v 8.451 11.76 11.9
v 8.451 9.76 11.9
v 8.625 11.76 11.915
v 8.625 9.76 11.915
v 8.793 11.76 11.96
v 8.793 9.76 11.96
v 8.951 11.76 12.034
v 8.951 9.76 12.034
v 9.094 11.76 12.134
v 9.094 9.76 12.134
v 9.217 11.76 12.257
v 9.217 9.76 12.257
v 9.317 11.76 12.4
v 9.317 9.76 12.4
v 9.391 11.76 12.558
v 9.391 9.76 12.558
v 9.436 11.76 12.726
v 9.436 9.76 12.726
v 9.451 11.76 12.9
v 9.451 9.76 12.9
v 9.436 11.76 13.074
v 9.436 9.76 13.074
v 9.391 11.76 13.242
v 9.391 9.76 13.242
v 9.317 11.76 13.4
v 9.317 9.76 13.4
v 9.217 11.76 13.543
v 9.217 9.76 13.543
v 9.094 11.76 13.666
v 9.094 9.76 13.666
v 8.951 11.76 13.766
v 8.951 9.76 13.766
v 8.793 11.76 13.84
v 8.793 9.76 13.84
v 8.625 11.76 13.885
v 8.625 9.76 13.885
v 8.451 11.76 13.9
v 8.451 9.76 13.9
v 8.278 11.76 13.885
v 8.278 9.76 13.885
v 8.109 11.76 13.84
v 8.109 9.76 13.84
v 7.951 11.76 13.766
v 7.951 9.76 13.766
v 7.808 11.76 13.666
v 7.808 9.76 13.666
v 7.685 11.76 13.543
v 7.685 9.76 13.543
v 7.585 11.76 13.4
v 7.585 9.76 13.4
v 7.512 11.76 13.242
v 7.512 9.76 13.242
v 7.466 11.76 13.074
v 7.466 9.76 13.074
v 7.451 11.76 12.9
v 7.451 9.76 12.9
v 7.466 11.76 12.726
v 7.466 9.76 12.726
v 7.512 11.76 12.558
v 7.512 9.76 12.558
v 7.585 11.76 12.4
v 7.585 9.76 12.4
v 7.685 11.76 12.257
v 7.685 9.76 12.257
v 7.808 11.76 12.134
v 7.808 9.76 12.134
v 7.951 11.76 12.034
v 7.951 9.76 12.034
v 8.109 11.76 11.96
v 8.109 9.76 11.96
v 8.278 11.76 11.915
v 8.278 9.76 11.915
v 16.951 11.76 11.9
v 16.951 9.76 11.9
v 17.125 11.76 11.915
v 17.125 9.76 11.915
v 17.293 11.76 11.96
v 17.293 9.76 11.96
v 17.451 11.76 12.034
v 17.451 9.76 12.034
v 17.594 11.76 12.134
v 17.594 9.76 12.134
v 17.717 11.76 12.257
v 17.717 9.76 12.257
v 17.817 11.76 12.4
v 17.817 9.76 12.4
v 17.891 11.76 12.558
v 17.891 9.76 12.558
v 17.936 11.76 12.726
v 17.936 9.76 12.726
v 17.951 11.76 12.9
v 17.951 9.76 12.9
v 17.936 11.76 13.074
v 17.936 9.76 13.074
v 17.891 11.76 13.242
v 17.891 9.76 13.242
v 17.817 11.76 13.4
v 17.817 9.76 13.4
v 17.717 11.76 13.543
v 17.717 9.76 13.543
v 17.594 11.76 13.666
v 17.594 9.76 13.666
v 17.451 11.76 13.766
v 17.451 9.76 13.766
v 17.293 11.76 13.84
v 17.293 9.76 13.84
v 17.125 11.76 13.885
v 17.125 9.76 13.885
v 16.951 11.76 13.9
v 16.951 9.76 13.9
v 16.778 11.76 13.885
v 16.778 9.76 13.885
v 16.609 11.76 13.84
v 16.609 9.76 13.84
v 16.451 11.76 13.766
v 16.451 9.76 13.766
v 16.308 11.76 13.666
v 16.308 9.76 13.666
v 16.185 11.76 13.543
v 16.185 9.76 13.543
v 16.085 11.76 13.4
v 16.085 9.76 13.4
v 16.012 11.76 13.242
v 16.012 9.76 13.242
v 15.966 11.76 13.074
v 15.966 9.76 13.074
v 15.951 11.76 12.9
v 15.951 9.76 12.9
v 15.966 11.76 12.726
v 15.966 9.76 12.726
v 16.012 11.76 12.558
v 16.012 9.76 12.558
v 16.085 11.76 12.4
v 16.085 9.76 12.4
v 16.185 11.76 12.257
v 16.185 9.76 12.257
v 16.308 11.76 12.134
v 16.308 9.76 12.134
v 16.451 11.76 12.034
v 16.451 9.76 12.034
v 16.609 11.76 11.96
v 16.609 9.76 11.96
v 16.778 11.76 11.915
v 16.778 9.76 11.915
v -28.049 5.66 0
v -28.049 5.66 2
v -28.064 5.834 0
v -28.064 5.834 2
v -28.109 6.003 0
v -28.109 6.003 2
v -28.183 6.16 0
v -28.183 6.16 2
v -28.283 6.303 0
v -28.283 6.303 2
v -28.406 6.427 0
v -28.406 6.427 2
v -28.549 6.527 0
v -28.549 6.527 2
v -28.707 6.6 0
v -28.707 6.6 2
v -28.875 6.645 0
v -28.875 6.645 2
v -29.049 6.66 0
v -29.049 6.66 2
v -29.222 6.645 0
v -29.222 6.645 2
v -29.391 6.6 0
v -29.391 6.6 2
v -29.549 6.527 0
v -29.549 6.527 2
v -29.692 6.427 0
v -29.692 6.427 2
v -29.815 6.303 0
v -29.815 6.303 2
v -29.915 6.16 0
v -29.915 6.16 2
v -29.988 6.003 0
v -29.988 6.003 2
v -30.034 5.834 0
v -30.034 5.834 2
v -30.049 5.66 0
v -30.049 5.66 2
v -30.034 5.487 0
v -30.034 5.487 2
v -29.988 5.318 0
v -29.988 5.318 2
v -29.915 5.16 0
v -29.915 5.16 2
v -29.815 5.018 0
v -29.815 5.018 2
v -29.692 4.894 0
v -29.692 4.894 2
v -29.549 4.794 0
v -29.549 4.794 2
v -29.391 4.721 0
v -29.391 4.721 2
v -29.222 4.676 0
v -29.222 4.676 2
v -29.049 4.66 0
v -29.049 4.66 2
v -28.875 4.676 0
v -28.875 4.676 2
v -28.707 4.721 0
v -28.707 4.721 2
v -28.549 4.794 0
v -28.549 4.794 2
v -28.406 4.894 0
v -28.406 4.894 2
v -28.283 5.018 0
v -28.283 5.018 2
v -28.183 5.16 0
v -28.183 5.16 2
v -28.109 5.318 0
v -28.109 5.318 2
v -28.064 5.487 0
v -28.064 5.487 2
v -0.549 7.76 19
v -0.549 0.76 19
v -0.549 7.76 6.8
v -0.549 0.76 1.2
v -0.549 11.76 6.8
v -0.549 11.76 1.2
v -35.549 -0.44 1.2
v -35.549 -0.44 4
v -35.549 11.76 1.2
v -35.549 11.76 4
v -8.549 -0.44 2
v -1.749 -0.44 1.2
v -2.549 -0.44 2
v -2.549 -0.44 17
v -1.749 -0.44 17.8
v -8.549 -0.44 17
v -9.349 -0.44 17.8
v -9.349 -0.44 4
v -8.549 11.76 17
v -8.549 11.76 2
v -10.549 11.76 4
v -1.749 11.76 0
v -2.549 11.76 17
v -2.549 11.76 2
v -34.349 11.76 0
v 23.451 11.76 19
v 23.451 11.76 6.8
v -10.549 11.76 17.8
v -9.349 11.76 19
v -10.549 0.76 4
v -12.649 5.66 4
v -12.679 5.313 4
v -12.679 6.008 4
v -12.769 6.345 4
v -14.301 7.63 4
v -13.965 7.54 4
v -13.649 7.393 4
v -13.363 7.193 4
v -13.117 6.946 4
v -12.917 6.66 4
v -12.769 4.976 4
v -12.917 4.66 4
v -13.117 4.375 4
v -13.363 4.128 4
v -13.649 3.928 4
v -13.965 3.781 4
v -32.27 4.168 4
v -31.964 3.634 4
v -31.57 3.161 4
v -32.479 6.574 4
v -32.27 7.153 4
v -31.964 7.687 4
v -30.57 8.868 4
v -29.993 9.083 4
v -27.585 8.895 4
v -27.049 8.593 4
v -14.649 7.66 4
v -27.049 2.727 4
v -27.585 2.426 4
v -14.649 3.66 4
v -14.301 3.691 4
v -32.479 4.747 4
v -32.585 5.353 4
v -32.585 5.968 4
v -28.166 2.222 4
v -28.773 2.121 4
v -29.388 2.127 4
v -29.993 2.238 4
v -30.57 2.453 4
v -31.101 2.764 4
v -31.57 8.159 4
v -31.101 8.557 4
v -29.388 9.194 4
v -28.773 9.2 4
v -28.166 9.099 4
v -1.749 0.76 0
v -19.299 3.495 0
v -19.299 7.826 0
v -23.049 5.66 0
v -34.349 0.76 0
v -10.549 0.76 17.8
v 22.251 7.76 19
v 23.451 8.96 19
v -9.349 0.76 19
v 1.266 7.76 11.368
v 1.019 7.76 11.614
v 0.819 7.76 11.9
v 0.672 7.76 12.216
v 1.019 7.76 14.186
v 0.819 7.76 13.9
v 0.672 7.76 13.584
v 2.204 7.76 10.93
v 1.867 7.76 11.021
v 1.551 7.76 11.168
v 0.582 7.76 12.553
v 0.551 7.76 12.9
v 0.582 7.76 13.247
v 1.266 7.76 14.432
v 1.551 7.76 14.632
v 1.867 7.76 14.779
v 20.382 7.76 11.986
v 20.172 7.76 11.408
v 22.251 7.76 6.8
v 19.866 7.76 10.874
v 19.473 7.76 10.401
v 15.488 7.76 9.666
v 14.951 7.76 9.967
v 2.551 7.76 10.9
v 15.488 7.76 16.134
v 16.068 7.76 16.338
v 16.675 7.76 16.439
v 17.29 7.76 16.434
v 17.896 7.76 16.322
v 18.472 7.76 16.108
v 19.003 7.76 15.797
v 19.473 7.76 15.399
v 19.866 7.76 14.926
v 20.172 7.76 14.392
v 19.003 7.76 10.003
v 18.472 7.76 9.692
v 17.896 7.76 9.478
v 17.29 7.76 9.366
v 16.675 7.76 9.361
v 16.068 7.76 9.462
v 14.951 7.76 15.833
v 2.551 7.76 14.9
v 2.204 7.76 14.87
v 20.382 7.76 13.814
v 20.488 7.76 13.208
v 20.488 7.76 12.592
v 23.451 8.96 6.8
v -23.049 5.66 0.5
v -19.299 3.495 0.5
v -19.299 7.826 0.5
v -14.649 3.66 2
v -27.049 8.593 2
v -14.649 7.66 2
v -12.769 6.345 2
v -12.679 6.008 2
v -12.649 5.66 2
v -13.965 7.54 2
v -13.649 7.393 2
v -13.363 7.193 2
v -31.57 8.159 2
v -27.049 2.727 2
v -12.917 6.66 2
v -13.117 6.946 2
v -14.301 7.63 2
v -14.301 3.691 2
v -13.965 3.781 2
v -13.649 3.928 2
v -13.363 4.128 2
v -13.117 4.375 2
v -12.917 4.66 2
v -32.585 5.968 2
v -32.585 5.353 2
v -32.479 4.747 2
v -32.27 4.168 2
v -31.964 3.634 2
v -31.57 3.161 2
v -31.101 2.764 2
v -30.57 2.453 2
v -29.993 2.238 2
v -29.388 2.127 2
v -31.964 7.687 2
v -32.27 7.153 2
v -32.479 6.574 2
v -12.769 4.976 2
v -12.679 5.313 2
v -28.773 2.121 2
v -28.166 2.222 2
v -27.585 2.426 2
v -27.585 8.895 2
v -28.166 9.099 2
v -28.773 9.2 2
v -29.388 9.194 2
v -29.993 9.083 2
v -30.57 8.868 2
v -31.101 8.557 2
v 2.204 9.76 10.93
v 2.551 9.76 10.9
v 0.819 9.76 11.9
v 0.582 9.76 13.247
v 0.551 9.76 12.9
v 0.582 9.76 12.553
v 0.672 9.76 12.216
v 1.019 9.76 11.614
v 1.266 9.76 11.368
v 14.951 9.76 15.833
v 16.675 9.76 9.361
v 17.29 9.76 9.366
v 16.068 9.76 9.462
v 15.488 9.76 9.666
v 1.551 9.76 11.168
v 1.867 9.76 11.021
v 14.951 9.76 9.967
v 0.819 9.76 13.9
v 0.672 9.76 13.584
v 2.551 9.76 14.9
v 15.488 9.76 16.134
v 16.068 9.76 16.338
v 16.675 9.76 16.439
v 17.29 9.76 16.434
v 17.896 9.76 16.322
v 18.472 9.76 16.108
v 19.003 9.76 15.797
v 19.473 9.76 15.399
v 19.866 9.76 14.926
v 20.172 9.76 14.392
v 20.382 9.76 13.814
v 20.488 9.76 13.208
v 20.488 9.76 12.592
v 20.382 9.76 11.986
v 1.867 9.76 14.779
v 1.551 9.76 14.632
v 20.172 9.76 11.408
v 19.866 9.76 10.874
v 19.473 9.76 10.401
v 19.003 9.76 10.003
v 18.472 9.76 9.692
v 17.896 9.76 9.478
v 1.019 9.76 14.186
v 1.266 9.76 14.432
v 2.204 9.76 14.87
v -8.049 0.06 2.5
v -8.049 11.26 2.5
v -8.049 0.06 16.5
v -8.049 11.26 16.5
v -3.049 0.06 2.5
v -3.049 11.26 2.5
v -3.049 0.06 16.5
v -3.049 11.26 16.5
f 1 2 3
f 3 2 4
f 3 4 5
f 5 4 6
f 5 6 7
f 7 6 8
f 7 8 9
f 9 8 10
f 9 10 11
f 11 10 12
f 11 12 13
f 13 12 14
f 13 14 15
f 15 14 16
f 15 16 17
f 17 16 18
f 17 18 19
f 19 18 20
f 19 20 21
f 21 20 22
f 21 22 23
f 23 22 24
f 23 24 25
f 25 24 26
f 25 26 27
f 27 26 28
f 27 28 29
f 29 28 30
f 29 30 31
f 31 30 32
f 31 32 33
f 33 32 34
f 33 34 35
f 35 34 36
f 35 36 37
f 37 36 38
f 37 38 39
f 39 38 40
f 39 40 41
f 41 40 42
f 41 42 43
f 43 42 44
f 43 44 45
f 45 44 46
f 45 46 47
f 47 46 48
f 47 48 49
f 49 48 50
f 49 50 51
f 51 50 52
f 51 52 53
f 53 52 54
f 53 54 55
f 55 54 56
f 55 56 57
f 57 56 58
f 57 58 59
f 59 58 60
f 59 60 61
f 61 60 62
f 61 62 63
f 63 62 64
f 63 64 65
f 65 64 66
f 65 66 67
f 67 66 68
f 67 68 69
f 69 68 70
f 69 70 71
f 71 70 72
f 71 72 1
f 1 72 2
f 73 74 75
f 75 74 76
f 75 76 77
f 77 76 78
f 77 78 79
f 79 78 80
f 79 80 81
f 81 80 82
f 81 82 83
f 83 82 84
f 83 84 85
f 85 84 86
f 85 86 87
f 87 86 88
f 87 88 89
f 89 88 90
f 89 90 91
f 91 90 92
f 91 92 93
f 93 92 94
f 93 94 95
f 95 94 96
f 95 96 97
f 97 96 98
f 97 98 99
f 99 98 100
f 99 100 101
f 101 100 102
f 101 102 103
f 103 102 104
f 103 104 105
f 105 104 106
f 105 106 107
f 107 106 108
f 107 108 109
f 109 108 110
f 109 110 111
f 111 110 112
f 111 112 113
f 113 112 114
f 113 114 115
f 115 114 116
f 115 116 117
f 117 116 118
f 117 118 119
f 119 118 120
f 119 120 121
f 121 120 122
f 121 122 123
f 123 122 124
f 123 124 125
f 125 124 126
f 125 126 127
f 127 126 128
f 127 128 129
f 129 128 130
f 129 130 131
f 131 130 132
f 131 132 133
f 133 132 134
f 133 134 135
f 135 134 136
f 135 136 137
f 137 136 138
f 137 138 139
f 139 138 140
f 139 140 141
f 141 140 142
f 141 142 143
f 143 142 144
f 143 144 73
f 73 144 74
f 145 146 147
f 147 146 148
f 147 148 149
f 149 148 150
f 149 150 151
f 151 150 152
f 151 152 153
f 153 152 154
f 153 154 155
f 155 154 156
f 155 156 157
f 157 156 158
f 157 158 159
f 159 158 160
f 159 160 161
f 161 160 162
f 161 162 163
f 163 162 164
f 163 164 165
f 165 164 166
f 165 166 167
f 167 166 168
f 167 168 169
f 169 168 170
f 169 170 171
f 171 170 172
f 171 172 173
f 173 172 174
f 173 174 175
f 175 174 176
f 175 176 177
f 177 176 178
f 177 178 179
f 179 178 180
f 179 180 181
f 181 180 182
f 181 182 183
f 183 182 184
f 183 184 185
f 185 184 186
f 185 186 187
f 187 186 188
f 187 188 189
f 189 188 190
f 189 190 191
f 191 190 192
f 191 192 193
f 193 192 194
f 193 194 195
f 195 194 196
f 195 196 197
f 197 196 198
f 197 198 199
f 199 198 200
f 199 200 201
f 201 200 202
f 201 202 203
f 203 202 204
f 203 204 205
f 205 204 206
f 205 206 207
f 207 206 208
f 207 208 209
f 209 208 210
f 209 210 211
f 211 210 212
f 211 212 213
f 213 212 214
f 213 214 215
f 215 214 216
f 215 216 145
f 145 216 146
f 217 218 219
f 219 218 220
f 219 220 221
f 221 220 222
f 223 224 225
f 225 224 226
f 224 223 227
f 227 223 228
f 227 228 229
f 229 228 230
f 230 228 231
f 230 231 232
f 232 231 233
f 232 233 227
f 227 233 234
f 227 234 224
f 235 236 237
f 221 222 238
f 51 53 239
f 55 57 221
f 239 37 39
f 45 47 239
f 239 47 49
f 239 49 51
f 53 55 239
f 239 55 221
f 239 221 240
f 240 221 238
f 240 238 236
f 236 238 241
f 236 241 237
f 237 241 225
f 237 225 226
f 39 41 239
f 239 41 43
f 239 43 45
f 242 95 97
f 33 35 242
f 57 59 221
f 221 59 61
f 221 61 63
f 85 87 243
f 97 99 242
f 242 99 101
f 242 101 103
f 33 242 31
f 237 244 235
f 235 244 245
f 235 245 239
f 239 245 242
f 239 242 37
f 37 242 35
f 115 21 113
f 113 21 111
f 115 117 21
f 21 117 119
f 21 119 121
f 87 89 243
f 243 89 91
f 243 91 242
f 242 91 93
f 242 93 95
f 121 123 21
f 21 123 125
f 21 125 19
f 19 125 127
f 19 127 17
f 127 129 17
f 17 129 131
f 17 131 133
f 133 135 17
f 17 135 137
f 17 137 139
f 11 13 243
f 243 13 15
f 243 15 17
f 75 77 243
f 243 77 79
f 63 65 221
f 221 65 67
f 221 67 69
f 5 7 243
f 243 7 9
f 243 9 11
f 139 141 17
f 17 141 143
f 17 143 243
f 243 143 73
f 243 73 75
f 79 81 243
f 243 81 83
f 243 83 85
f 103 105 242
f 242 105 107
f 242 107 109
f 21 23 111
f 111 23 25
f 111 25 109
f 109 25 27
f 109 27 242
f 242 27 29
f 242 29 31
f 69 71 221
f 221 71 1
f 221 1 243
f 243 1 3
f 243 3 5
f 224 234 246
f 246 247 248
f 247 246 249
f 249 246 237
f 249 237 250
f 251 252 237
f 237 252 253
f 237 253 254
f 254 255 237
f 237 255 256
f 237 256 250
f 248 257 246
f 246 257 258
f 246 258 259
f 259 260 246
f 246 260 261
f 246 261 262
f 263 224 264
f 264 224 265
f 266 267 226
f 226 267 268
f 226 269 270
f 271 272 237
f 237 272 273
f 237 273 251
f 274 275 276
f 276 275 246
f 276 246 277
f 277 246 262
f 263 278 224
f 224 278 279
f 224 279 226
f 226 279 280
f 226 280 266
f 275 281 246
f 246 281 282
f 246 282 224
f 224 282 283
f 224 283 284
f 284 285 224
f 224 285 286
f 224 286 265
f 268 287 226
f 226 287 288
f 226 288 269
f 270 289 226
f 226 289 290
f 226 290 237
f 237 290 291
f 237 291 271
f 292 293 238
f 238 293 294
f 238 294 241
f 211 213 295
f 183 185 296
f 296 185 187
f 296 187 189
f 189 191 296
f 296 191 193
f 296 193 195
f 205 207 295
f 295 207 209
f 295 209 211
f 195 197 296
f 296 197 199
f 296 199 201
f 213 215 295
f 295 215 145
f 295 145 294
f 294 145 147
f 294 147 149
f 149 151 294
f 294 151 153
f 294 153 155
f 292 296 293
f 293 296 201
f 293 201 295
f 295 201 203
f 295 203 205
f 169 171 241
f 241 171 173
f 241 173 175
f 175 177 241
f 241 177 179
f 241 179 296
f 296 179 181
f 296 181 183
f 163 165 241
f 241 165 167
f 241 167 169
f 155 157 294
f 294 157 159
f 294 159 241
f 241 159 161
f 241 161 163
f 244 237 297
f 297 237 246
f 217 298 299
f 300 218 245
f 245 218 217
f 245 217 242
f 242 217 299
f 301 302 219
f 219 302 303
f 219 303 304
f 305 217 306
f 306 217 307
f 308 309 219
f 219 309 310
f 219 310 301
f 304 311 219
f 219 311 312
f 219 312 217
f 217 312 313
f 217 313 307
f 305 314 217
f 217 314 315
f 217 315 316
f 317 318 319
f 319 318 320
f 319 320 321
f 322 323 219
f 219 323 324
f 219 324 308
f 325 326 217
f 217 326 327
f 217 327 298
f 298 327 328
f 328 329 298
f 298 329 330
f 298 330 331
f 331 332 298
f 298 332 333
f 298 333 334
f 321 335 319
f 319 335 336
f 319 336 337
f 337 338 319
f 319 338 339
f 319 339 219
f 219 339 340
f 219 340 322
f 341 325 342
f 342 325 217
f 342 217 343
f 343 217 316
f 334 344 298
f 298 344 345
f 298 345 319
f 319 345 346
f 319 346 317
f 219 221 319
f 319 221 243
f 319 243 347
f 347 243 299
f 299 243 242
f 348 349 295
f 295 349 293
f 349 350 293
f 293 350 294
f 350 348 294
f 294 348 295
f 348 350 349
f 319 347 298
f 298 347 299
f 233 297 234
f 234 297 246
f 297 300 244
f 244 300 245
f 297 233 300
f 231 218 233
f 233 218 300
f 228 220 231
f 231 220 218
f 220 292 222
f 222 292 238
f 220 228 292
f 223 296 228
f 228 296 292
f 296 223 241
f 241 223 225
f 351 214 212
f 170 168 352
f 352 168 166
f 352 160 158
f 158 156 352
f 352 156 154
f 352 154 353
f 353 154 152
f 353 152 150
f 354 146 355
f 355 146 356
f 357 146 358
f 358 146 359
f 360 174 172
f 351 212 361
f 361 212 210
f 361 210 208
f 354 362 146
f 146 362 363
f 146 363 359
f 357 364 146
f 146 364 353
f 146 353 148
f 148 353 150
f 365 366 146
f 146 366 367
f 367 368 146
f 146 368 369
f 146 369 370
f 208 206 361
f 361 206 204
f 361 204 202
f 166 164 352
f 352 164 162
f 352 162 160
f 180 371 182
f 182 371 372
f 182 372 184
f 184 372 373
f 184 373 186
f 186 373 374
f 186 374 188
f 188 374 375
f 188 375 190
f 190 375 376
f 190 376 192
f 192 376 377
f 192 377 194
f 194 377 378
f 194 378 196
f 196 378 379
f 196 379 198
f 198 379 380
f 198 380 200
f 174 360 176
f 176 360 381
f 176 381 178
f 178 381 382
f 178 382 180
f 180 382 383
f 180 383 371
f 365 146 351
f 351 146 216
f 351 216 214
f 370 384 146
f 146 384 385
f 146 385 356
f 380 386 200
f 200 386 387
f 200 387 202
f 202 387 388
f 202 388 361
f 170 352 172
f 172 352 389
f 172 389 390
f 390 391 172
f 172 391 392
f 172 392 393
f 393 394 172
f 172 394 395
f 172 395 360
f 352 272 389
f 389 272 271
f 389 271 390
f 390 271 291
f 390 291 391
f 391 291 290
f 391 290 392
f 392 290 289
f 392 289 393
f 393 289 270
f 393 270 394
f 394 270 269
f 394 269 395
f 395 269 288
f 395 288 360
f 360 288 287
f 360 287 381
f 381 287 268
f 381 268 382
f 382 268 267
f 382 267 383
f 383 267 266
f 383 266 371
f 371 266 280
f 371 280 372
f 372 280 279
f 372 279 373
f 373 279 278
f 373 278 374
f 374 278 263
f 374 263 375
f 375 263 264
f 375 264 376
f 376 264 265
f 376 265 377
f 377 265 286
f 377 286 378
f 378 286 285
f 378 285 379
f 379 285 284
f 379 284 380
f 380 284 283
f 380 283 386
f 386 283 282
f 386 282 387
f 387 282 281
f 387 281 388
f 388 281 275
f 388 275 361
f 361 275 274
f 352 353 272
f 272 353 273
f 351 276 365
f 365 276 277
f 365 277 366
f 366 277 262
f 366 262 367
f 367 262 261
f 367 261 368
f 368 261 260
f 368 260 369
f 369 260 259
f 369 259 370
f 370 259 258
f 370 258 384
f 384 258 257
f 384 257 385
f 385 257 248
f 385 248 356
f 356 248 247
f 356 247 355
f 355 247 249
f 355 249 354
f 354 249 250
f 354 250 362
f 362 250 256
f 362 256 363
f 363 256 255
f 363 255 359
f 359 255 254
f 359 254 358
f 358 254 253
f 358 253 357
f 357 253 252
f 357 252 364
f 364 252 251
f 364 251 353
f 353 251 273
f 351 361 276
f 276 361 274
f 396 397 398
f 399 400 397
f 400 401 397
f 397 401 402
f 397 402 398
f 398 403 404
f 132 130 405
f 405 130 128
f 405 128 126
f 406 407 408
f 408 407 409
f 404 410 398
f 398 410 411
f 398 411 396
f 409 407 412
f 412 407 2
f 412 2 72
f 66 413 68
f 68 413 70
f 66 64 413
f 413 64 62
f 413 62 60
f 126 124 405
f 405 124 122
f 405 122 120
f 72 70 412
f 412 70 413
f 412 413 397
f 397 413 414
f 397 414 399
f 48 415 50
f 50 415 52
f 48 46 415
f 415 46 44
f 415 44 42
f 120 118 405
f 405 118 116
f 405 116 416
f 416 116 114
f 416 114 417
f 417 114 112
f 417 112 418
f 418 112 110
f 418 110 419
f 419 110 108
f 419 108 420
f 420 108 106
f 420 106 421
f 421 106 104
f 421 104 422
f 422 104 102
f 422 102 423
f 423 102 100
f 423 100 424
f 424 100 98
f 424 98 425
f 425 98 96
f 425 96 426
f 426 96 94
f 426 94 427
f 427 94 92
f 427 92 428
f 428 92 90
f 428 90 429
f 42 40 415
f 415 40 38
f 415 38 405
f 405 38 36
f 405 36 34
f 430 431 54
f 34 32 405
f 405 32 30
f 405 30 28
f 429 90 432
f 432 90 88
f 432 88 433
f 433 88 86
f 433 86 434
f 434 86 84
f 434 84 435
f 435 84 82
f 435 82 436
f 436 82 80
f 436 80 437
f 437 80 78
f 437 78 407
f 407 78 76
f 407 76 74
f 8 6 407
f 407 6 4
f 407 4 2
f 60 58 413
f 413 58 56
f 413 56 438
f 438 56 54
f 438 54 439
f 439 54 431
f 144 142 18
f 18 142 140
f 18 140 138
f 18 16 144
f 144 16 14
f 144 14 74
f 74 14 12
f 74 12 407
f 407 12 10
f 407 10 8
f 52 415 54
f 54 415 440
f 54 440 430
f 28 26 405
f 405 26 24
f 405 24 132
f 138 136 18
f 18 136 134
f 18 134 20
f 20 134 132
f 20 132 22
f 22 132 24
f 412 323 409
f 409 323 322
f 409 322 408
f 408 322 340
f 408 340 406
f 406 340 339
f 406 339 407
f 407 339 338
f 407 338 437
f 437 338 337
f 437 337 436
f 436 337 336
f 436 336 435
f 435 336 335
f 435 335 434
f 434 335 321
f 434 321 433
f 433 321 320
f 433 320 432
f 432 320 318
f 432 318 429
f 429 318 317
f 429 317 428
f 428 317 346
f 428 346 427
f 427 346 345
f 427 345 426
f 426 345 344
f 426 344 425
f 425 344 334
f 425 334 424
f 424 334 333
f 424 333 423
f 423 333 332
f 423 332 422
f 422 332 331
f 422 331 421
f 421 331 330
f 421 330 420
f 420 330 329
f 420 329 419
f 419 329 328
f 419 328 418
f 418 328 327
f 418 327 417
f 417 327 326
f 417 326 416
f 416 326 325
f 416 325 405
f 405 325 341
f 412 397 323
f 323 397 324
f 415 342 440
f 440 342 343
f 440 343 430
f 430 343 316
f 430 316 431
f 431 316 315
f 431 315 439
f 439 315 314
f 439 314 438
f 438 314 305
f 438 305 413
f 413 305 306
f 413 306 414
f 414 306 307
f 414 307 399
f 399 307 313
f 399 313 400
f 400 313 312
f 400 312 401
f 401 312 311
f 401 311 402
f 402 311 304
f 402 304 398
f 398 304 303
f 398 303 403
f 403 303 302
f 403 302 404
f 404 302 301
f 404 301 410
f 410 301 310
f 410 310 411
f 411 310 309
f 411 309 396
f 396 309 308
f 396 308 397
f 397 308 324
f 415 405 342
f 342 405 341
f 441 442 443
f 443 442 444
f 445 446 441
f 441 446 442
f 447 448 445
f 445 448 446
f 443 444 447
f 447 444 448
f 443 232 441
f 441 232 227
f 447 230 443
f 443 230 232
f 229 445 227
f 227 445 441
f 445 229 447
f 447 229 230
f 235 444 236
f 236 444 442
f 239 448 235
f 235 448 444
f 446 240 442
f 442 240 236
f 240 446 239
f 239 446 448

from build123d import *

# Parameters (mm, degrees)
SKETCH1_W               = 35
SKETCH1_H               = 12.2
BOSS_EXTRUDE1_DEPTH     = 4
SKETCH2_R               = 1
CUT_EXTRUDE1_DEPTH      = 38.656658625
SKETCH3_W               = 10
SKETCH3_H               = 12.2
BOSS_EXTRUDE2_DEPTH     = 15
SKETCH4_W               = 12.2
SKETCH4_H               = 4
BOSS_EXTRUDE3_DEPTH     = 24
CUT_EXTRUDE2_DEPTH      = 42.133377247
CUT_EXTRUDE2_DEPTH_BACK = 42.133377247
SKETCH5_R               = 1
CUT_EXTRUDE3_DEPTH      = 0.5
CHAMFER1_SIZE           = 1.2
CUT_EXTRUDE17_DEPTH     = 2
CUT_EXTRUDE18_DEPTH     = 2
SKETCH26_W              = 5
SKETCH26_H              = 14
CUT_EXTRUDE19_DEPTH     = 43.113593099
CHAMFER2_SIZE           = 0.5


with BuildPart() as part:
    # Sketch1 → Boss-Extrude1 (new body)
    with BuildSketch(Plane.XY):
        with Locations((-18.048765432, 5.660493827)):
            Rectangle(SKETCH1_W, SKETCH1_H)
    extrude(amount=BOSS_EXTRUDE1_DEPTH)

    # Sketch2 → Cut-Extrude1 (cut, through all)
    with BuildSketch(Plane.XY.offset(4)):
        with Locations((-29.048765432, 5.660493827)):
            Circle(SKETCH2_R)
    extrude(amount=-CUT_EXTRUDE1_DEPTH, mode=Mode.SUBTRACT)

    # Sketch3 → Boss-Extrude2 (add)
    with BuildSketch(Plane.XY.offset(4)):
        with Locations((-5.548765432, 5.660493827)):
            Rectangle(SKETCH3_W, SKETCH3_H)
    extrude(amount=BOSS_EXTRUDE2_DEPTH)

    # Sketch4 → Boss-Extrude3 (add)
    with BuildSketch(Plane(origin=(-0.548765432, 0, 0), x_dir=(0, 0, -1), z_dir=(1, 0, 0))):
        with Locations((-12.9, 9.760493827)):
            Rectangle(SKETCH4_W, SKETCH4_H)
    extrude(amount=BOSS_EXTRUDE3_DEPTH)

    # Sketch5 → Cut-Extrude2 (cut, two sides: drawn at the far end of the back side and taken through both)
    with BuildSketch(Plane.XZ.offset(-7.760493827).offset(-CUT_EXTRUDE2_DEPTH_BACK)):
        with Locations(Location((16.951234568, 12.9, 0), (0, 0, 270))):
            Circle(SKETCH5_R)
        with Locations(Location((8.451234568, 12.9, 0), (0, 0, 270))):
            Circle(SKETCH5_R)
    extrude(amount=CUT_EXTRUDE2_DEPTH + CUT_EXTRUDE2_DEPTH_BACK, mode=Mode.SUBTRACT)

    # Sketch7 → Cut-Extrude3 (cut)
    with BuildSketch(Plane(origin=(0, 0, 0), x_dir=(-1, 0, 0), z_dir=(0, 0, -1))):
        Polygon((23.048765432, 5.660493827), (19.298765432, 7.825557337), (19.298765432, 3.495430318), align=None)
    extrude(amount=-CUT_EXTRUDE3_DEPTH, mode=Mode.SUBTRACT)

    # Chamfer1
    chamfer1_edges = [part.edges().sort_by_distance(p)[0] for p in [
        (-10.548765432, -0.439506173, 11.5),
        (-10.548765432, 5.660493827, 19),
        (-5.548765432, -0.439506173, 19),
        (23.451234568, 7.760493827, 12.9),
        (-0.548765432, 5.660493827, 0),
        (-18.048765432, -0.439506173, 0),
        (-35.548765432, 5.660493827, 0),
        (-0.548765432, -0.439506173, 9.5),
    ]]
    chamfer(chamfer1_edges, length=CHAMFER1_SIZE)

    # Sketch24 → Cut-Extrude17 (cut)
    with BuildSketch(Plane.XY.offset(4)):
        with BuildLine():
            Line((-27.048765432, 2.727491952), (-14.648765432, 3.660493827))
            ThreePointArc((-14.648765432, 3.660493827), (-12.648765432, 5.660493827), (-14.648765432, 7.660493827))
            Line((-14.648765432, 7.660493827), (-27.048765432, 8.593495702))
            ThreePointArc((-27.048765432, 8.593495702), (-32.598765432, 5.660493827), (-27.048765432, 2.727491952))
        make_face()
    extrude(amount=-CUT_EXTRUDE17_DEPTH, mode=Mode.SUBTRACT)

    # Sketch25 → Cut-Extrude18 (cut)
    with BuildSketch(Plane.XZ.offset(-7.760493827)):
        with BuildLine():
            Line((2.551234568, 14.9), (14.951234568, 15.833001875))
            ThreePointArc((14.951234568, 15.833001875), (20.501234568, 12.9), (14.951234568, 9.966998125))
            Line((14.951234568, 9.966998125), (2.551234568, 10.9))
            ThreePointArc((2.551234568, 10.9), (0.551234568, 12.9), (2.551234568, 14.9))
        make_face()
    extrude(amount=-CUT_EXTRUDE18_DEPTH, mode=Mode.SUBTRACT)

    # Sketch26 → Cut-Extrude19 (cut, through all)
    with BuildSketch(Plane(origin=(0, 11.760493827, 0), x_dir=(1, 0, 0), z_dir=(0, 1, 0))):
        with Locations((-5.548765432, -9.5)):
            Rectangle(SKETCH26_W, SKETCH26_H)
    extrude(amount=-CUT_EXTRUDE19_DEPTH, mode=Mode.SUBTRACT)

    # Chamfer2
    chamfer2_edges = [part.edges().sort_by_distance(p)[0] for p in [
        (-8.048765432, -0.439506173, 9.5),
        (-5.548765432, -0.439506173, 2.5),
        (-3.048765432, -0.439506173, 9.5),
        (-5.548765432, -0.439506173, 16.5),
        (-8.048765432, 11.760493827, 9.5),
        (-5.548765432, 11.760493827, 16.5),
        (-3.048765432, 11.760493827, 9.5),
        (-5.548765432, 11.760493827, 2.5),
    ]]
    chamfer(chamfer2_edges, length=CHAMFER2_SIZE)


solid = part.part
